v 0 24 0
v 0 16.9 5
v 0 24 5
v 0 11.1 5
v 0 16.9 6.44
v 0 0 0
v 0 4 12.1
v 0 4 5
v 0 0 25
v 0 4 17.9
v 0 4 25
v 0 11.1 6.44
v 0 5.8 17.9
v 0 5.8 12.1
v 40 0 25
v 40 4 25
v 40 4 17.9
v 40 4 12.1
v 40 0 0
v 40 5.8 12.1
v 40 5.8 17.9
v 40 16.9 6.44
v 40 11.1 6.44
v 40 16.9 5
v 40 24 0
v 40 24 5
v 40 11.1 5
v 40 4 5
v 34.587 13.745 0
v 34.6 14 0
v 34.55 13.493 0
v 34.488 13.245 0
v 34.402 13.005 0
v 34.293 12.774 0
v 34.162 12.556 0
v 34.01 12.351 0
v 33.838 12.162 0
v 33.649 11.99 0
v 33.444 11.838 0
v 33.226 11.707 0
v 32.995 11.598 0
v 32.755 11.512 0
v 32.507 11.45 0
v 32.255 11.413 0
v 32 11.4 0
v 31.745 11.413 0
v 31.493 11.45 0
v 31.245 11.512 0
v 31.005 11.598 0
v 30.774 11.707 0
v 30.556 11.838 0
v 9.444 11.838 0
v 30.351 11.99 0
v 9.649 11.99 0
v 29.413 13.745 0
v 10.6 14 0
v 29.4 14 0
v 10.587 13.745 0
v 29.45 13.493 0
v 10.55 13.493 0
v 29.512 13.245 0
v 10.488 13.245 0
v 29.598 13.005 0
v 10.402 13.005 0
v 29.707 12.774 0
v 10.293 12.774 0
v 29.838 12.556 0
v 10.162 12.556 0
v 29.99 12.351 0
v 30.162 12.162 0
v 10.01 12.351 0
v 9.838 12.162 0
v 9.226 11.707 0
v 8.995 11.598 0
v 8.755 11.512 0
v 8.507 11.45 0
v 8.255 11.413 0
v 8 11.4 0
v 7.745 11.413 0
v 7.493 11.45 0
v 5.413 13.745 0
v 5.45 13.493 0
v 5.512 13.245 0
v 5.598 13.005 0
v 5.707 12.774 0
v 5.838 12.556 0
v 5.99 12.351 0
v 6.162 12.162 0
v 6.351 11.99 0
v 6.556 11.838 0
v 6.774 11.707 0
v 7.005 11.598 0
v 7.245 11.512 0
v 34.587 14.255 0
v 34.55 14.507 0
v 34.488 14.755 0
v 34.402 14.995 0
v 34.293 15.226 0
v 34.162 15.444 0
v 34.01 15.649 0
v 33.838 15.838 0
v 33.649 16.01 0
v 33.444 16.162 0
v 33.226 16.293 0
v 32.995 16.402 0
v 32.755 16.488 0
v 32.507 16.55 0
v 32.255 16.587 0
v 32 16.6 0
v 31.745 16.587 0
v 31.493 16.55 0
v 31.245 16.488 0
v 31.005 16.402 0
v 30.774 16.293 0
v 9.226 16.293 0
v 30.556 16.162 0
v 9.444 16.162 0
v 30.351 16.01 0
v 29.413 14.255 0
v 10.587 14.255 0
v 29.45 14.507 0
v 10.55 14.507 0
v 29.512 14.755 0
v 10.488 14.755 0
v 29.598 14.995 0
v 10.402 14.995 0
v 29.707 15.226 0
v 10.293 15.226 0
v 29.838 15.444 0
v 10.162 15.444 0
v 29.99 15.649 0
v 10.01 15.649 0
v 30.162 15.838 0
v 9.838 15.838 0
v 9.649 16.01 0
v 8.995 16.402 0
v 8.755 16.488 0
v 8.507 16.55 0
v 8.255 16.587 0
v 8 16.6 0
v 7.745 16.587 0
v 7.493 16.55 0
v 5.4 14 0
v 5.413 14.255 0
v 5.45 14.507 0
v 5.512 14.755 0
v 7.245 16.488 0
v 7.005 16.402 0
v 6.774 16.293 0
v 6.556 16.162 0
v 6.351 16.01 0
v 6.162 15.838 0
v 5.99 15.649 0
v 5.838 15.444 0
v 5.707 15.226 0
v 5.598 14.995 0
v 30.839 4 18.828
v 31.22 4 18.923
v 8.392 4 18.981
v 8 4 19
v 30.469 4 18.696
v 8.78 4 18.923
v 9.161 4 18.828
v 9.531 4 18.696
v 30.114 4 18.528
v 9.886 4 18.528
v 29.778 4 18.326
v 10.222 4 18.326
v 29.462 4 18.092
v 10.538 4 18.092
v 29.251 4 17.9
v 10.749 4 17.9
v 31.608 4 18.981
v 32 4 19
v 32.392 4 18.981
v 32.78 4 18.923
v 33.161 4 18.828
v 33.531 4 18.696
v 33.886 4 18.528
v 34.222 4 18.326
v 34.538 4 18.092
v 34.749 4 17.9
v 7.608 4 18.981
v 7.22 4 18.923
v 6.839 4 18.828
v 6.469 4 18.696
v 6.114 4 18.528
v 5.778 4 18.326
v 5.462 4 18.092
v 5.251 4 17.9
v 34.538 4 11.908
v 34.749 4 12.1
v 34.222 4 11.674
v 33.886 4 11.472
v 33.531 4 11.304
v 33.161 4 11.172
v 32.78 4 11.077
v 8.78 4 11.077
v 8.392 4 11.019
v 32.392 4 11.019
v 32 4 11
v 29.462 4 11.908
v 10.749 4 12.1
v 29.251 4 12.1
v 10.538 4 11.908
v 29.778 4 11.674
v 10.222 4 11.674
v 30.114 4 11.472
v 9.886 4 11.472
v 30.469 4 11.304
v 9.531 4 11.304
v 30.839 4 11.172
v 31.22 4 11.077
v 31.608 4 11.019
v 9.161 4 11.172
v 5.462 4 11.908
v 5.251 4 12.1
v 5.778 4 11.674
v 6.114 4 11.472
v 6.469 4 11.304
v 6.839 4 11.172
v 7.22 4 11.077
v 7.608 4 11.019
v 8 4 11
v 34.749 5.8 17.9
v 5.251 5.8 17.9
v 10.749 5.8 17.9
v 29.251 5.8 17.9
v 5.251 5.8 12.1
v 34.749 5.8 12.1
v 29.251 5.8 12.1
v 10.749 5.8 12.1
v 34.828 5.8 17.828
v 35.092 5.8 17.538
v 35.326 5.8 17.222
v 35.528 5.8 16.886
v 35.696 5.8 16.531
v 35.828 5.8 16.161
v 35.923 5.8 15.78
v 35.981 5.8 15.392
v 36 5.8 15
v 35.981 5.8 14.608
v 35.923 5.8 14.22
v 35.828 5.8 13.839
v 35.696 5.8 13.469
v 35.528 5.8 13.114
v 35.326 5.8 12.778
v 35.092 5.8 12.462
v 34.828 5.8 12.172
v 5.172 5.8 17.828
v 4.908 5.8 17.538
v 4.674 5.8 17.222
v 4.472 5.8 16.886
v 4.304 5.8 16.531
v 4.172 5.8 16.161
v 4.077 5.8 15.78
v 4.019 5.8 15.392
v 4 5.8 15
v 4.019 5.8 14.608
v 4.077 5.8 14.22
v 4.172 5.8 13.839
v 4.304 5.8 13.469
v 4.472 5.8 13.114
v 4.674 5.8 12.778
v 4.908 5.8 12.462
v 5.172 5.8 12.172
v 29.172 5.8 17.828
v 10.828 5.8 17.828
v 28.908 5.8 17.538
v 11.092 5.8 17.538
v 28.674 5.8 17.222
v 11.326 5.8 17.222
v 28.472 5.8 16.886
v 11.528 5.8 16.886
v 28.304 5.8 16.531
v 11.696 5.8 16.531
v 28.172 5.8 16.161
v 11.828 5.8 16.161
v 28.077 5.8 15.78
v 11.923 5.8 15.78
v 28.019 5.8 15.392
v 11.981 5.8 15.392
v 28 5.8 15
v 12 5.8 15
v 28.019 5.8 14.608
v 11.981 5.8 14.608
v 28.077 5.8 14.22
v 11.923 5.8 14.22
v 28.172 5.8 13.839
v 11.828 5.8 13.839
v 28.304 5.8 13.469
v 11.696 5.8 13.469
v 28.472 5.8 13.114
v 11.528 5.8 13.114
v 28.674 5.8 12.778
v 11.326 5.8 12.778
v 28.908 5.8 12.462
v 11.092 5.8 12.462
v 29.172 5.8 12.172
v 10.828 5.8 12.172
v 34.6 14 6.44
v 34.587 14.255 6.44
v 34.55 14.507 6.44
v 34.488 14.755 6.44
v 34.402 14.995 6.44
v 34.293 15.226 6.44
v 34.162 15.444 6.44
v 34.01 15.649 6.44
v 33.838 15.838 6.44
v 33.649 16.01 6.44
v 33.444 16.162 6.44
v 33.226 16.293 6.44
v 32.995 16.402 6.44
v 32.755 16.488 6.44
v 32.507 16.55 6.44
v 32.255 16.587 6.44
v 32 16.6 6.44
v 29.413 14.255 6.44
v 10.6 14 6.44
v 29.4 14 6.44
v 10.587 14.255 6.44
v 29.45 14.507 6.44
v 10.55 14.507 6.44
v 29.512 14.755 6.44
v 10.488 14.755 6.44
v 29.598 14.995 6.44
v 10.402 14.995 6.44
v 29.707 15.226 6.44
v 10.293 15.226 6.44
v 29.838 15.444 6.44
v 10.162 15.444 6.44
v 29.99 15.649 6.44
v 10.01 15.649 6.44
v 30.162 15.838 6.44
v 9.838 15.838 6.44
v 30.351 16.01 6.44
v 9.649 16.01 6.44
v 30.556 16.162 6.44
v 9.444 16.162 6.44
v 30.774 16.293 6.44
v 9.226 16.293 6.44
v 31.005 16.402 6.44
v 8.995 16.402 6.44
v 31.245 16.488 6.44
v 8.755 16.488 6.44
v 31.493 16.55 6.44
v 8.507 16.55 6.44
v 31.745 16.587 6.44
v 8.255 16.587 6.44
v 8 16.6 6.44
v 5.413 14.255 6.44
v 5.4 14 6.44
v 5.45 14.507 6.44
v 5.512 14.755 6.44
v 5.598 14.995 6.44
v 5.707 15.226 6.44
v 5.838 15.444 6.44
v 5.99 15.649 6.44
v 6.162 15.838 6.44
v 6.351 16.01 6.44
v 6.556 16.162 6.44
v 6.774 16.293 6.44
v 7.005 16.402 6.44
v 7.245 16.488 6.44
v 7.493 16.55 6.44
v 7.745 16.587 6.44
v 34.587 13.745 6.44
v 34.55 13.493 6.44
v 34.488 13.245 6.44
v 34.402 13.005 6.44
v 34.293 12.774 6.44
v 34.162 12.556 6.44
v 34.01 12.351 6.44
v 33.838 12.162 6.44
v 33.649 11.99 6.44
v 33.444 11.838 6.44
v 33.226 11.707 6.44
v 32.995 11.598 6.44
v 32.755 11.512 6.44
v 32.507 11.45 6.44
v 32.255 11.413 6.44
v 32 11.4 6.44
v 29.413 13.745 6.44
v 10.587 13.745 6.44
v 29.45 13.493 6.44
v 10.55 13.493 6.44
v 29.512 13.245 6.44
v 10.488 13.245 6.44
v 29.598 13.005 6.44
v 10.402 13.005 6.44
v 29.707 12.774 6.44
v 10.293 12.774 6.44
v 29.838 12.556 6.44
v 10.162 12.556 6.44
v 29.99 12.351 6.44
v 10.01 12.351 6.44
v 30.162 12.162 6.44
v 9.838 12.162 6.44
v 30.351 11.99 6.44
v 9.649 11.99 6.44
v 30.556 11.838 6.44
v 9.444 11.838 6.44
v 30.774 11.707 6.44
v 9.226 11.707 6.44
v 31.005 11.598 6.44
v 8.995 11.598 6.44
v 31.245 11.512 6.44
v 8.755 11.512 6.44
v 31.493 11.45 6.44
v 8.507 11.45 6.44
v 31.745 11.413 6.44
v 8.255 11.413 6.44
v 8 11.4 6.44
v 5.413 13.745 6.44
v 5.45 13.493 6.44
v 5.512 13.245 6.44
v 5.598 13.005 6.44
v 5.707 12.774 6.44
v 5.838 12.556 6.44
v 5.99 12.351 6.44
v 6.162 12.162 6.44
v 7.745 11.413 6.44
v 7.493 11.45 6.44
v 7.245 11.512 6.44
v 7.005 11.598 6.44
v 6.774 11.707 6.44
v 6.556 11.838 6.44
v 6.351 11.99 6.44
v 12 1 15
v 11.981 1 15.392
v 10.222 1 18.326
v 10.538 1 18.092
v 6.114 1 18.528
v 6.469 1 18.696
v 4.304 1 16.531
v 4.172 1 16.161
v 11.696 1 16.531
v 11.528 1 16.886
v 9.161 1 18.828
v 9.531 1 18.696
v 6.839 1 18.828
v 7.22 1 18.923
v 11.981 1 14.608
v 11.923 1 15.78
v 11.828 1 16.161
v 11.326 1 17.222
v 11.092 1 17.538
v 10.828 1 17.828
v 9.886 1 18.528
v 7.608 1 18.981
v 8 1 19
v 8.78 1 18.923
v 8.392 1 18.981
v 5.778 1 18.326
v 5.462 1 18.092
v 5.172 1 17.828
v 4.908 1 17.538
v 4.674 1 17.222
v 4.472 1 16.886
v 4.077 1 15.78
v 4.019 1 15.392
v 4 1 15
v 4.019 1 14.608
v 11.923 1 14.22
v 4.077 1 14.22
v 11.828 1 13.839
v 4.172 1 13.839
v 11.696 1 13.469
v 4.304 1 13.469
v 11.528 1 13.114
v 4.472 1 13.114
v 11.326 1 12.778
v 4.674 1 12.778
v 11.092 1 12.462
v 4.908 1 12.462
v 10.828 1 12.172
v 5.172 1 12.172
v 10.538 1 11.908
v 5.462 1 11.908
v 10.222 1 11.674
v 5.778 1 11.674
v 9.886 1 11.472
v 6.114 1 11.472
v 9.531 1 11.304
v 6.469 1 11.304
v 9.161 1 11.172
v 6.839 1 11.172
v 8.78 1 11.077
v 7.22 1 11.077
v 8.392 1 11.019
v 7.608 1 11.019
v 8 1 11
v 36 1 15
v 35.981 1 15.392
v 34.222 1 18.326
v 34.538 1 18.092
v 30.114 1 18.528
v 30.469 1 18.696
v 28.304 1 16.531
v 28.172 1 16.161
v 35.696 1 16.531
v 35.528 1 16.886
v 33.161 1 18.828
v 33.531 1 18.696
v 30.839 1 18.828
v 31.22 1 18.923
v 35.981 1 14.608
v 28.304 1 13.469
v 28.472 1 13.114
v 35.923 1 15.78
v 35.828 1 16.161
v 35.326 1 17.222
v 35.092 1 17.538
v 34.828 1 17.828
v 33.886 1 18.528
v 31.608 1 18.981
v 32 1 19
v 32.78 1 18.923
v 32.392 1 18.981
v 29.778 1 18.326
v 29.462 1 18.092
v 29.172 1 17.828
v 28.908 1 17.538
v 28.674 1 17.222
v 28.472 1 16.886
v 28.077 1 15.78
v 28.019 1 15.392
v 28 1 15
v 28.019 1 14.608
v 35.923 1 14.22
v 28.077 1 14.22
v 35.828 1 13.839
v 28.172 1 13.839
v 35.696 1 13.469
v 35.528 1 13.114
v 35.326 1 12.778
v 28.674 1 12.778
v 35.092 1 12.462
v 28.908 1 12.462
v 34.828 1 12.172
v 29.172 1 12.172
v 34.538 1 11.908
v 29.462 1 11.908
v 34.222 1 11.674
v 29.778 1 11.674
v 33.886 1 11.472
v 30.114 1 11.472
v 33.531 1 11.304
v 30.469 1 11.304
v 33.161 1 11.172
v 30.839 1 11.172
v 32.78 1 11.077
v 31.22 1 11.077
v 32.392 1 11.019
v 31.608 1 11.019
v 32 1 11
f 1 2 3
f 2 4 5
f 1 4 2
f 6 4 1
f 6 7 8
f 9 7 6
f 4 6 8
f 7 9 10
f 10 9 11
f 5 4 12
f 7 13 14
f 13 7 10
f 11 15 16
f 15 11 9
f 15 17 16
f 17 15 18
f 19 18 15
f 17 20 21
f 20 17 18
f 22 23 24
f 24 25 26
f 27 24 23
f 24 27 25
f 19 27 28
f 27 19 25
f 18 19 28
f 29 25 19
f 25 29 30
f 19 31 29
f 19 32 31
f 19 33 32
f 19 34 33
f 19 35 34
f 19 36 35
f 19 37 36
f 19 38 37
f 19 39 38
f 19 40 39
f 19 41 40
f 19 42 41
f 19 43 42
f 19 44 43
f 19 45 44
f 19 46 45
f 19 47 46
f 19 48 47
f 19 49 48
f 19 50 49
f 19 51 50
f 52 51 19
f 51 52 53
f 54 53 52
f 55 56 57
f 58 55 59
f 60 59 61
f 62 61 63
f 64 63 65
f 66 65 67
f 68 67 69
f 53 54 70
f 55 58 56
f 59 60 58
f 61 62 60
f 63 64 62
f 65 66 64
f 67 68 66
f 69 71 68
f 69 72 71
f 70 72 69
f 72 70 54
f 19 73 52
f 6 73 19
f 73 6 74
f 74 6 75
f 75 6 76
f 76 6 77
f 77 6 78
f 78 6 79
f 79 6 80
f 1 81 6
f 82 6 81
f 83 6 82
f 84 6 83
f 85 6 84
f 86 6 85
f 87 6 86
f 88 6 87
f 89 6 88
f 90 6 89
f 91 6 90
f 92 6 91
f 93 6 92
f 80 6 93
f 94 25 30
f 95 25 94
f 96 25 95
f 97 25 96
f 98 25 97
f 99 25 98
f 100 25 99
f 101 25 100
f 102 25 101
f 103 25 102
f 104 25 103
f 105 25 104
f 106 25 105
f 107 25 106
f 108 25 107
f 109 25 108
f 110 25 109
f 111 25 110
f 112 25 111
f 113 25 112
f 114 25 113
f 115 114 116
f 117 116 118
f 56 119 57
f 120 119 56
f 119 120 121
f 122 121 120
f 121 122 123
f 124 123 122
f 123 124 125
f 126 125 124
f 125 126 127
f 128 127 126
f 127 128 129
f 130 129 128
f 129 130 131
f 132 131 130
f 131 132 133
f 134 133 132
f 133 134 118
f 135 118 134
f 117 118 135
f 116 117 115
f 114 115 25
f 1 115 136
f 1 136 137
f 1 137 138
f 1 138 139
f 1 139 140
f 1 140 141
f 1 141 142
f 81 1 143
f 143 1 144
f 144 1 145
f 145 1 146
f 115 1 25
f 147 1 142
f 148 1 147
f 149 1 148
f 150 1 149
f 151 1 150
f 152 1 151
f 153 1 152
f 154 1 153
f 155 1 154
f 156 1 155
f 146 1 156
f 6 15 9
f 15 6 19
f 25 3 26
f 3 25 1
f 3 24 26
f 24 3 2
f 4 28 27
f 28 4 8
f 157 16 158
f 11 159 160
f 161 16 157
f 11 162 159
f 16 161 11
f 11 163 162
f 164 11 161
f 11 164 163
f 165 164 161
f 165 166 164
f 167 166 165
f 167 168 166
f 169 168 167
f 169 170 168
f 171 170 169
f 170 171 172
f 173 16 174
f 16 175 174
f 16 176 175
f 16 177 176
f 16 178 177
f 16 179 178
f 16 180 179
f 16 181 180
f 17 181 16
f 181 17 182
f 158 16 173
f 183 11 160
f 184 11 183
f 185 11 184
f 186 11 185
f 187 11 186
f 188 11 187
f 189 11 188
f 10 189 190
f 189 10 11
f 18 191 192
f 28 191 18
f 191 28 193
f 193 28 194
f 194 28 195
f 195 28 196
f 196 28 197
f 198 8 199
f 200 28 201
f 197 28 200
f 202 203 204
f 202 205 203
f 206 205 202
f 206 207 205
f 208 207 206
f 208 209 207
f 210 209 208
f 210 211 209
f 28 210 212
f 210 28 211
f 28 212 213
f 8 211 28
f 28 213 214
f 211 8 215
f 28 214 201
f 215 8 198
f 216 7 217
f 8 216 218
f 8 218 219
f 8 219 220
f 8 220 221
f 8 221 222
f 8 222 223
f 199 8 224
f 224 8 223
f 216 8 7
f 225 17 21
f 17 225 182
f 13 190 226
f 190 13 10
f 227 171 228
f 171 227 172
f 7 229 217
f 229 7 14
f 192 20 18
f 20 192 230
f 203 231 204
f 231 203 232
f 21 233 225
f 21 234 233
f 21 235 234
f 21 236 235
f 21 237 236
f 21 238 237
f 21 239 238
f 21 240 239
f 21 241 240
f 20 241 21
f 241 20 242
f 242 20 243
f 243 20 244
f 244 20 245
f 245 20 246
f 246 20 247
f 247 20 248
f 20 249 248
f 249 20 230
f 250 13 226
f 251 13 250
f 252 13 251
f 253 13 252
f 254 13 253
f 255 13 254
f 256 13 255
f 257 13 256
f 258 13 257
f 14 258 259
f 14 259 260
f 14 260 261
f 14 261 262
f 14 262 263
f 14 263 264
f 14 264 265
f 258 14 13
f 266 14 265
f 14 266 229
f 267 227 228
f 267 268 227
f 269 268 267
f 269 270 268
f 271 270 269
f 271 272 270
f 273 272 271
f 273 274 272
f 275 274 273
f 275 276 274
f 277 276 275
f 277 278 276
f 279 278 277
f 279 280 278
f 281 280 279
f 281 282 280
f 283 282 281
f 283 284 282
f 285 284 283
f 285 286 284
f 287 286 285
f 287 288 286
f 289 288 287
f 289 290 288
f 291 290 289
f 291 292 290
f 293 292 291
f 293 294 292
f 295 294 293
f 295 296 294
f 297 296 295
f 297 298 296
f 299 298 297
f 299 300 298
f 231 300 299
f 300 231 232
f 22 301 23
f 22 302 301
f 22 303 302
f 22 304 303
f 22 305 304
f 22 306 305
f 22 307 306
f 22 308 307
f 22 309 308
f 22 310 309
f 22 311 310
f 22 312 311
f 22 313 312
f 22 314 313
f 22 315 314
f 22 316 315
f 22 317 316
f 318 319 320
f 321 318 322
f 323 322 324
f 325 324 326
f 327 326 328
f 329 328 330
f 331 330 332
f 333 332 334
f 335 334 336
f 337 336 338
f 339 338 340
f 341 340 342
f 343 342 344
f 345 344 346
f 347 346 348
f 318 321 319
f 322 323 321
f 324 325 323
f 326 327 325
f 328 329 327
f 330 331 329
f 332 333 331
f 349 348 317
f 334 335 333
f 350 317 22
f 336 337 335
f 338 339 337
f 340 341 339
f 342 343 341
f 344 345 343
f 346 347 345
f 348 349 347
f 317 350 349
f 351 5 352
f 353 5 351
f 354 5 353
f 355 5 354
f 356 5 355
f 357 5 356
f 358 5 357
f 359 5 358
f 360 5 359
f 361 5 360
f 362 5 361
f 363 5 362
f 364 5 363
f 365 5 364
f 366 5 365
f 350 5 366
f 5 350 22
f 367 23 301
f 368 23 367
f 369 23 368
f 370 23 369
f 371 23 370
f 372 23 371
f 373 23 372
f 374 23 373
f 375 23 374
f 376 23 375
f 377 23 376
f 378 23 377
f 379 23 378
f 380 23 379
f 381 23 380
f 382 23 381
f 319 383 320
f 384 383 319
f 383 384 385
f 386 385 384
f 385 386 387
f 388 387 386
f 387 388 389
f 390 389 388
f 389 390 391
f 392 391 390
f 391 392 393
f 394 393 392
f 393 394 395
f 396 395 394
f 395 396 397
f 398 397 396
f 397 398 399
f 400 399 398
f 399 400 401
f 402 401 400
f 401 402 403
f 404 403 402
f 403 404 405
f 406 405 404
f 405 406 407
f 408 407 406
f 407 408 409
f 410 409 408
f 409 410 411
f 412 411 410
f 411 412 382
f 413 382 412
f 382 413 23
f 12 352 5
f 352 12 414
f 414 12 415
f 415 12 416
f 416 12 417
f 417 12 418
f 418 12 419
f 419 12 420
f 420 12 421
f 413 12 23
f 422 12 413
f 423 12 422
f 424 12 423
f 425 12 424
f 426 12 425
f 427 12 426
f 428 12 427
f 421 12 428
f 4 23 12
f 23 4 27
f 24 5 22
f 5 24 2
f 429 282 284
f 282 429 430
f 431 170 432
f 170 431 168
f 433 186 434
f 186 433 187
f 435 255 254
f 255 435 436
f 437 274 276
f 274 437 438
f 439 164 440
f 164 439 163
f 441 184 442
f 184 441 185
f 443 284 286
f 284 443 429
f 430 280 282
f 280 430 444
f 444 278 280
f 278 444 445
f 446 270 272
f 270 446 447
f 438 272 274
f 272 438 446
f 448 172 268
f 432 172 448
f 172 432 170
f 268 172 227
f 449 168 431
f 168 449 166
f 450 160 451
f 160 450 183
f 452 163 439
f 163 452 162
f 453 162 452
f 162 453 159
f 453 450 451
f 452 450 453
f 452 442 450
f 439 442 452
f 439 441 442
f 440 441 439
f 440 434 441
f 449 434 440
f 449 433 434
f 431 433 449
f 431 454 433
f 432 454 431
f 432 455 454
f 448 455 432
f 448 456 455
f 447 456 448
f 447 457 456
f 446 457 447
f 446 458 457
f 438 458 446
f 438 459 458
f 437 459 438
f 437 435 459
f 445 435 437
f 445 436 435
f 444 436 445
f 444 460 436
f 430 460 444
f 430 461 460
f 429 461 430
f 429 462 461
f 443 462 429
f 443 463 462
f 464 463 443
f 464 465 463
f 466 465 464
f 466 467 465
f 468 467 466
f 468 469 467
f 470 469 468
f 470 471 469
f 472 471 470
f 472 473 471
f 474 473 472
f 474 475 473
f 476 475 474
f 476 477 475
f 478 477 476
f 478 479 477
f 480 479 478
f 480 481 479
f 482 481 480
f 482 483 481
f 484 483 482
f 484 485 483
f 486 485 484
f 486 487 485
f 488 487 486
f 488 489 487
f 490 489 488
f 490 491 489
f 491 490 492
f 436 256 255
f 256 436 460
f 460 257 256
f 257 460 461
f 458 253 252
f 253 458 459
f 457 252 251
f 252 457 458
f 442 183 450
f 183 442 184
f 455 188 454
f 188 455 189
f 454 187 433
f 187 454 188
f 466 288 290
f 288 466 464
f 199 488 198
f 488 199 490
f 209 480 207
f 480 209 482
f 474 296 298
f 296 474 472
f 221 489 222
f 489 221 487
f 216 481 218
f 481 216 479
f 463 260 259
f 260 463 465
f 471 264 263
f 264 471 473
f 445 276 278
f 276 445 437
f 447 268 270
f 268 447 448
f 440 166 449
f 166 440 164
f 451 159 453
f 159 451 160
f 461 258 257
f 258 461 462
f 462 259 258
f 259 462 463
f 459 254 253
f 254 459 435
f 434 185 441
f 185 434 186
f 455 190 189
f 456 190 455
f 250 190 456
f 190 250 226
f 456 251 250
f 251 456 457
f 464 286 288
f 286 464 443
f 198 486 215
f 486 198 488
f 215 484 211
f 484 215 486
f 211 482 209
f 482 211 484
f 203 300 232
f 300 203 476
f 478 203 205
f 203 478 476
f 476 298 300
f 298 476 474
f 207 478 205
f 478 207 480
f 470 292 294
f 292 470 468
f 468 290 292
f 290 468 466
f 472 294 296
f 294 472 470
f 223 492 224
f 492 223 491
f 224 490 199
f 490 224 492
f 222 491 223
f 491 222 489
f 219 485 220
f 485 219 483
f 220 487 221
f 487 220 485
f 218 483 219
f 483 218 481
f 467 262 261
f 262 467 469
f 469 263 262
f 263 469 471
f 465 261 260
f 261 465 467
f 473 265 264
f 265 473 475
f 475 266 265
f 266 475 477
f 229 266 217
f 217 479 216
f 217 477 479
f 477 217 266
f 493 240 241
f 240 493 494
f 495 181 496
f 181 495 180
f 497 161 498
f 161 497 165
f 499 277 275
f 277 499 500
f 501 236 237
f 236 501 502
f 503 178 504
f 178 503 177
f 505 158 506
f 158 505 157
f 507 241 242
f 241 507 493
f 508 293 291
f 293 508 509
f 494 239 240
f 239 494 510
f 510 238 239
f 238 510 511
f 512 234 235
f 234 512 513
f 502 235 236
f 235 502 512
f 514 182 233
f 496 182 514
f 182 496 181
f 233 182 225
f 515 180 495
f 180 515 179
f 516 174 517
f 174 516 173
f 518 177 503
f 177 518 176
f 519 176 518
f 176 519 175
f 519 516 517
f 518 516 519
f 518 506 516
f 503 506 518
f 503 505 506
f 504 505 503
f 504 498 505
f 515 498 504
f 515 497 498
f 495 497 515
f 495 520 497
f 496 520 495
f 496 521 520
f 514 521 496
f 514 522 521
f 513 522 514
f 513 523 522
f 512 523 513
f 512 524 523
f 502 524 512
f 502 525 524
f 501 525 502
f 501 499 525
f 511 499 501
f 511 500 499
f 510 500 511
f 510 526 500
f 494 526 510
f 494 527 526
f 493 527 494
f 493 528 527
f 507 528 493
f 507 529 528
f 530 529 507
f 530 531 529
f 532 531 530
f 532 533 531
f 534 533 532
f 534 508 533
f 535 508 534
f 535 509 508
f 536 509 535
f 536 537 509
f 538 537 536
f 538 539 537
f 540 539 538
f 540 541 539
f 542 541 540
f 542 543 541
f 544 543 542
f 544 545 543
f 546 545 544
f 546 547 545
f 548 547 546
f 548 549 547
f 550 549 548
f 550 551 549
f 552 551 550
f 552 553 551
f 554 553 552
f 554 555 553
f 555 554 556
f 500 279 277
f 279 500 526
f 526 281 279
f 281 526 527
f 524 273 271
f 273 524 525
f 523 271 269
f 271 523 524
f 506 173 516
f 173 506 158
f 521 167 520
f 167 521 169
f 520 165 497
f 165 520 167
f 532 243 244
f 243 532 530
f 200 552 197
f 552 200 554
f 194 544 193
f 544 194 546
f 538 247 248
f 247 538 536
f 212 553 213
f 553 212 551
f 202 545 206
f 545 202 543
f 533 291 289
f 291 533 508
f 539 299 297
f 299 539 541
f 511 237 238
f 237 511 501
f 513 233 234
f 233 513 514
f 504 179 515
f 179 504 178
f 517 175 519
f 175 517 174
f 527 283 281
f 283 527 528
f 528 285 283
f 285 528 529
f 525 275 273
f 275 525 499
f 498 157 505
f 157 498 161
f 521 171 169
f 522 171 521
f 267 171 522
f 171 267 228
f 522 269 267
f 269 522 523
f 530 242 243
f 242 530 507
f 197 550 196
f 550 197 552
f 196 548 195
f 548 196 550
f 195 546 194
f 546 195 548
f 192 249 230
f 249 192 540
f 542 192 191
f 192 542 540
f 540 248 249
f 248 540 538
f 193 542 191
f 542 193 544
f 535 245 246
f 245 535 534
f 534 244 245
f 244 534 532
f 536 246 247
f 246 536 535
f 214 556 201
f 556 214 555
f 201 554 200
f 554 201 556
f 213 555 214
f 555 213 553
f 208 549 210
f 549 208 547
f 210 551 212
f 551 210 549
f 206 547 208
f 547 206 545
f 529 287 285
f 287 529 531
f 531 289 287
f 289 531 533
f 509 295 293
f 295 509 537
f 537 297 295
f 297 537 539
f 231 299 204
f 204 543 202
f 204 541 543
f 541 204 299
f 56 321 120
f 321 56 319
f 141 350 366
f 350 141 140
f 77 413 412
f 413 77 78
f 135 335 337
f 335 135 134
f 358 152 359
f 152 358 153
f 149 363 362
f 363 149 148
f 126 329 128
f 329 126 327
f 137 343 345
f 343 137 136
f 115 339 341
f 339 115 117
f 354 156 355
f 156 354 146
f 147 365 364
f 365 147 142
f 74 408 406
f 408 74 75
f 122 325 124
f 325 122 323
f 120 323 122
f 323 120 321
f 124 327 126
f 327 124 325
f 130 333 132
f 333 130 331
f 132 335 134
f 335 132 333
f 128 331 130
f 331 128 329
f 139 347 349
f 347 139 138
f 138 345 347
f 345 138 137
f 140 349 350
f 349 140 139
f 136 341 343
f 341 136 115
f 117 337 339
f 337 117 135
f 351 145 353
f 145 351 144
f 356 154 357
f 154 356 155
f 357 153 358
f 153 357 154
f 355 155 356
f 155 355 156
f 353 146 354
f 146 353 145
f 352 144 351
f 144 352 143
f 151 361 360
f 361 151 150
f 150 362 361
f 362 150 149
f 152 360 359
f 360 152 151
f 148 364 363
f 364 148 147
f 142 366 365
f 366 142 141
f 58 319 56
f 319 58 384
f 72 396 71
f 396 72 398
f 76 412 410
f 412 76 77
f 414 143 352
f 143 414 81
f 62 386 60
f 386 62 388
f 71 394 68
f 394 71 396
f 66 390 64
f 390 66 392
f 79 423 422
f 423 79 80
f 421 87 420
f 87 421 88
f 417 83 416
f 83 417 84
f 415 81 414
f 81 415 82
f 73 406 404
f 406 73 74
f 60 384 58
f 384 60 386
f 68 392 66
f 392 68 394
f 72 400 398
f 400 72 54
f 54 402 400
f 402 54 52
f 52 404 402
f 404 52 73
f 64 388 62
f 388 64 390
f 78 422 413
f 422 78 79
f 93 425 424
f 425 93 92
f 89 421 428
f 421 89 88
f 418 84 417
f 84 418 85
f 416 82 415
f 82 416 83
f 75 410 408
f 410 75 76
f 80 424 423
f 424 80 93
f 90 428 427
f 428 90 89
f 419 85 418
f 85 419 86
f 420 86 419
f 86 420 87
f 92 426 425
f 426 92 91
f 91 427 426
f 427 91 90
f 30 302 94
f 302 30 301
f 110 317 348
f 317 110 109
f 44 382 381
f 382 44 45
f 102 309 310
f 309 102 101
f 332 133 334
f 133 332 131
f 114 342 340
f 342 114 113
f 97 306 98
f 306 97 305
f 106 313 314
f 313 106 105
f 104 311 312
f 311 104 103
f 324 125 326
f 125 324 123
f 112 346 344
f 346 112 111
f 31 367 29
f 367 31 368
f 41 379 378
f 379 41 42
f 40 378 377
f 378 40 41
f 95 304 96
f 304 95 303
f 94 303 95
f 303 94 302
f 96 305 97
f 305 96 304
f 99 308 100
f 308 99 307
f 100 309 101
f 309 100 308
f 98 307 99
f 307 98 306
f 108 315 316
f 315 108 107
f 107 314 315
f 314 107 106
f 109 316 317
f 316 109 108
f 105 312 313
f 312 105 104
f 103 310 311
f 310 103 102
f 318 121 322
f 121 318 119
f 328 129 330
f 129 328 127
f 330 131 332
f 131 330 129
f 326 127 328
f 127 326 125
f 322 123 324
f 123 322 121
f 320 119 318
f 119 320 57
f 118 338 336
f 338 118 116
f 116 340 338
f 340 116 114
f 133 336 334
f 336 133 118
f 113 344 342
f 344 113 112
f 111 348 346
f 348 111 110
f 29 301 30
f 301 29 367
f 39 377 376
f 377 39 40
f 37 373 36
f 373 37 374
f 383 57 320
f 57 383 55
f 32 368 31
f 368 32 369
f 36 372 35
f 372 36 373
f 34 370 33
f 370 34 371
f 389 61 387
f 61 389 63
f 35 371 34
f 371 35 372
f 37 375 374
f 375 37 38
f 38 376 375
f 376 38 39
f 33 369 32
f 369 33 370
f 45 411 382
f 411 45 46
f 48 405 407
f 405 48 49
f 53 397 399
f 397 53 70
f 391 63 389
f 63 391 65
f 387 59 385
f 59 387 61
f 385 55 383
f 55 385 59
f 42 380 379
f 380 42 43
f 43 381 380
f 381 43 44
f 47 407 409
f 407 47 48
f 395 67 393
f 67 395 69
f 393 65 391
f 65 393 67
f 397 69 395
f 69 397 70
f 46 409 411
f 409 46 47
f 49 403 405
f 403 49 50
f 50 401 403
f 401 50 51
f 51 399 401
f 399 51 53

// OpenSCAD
Magnet_Diameter = 8;
Magnet_Thickness = 3;
Magnet_Side_Thickness = 4;

Screw_Diameter = 5.2;
Screw_Side_Thickness = 5;

Extrusion_Y = 20;
Extrusion_Z = 20;
Extrusion_Slot_Width = 5.8;
Extrusion_Slot_Height = 1.8;

Part_X = 40;

f = 0.01;

$fn = 64;

module bracket() {
    cube_x = Part_X;
    cube_y = Magnet_Side_Thickness + Extrusion_Y; 
    cube_z = Screw_Side_Thickness + Extrusion_Z;

    union() {
        difference() {
            union() {
                // Bracket
                difference() {
                    cube([cube_x, cube_y, cube_z]);
                    translate([-Part_X/2, Magnet_Side_Thickness, Screw_Side_Thickness])
                        cube([Part_X * 2, Extrusion_Y + f, Extrusion_Z + f]);
                }
                // Slot Support
                translate([0, Magnet_Side_Thickness, Screw_Side_Thickness + Extrusion_Z/2 - Extrusion_Slot_Width/2])
                    cube([cube_x, Extrusion_Slot_Height, Extrusion_Slot_Width]);
                translate([0, Magnet_Side_Thickness + Extrusion_Y/2 - Extrusion_Slot_Width/2, Screw_Side_Thickness])
                    cube([cube_x, Extrusion_Slot_Width, Extrusion_Slot_Height * 0.8]);
            }
            // Magnet cutouts
            translate([Part_X/5, Magnet_Side_Thickness + Extrusion_Slot_Height + f, Screw_Side_Thickness + Extrusion_Z/2])
                rotate([90, 0, 0])
                    cylinder(d = Magnet_Diameter, h = Magnet_Thickness + Extrusion_Slot_Height + f);
            translate([Part_X * 4/5, Magnet_Side_Thickness + Extrusion_Slot_Height + f, Screw_Side_Thickness + Extrusion_Z/2])
                rotate([90, 0, 0])
                    cylinder(d = Magnet_Diameter, h = Magnet_Thickness + Extrusion_Slot_Height + f);
            // Scre holes
            translate([Part_X/5, Magnet_Side_Thickness + Extrusion_Y/2, -f])
                cylinder(d = Screw_Diameter, h = Screw_Side_Thickness + Extrusion_Slot_Height);
            translate([Part_X * 4/5, Magnet_Side_Thickness + Extrusion_Y/2, -f])
                cylinder(d = Screw_Diameter, h = Screw_Side_Thickness + Extrusion_Slot_Height);
            
        }       
    }
}


bracket();
